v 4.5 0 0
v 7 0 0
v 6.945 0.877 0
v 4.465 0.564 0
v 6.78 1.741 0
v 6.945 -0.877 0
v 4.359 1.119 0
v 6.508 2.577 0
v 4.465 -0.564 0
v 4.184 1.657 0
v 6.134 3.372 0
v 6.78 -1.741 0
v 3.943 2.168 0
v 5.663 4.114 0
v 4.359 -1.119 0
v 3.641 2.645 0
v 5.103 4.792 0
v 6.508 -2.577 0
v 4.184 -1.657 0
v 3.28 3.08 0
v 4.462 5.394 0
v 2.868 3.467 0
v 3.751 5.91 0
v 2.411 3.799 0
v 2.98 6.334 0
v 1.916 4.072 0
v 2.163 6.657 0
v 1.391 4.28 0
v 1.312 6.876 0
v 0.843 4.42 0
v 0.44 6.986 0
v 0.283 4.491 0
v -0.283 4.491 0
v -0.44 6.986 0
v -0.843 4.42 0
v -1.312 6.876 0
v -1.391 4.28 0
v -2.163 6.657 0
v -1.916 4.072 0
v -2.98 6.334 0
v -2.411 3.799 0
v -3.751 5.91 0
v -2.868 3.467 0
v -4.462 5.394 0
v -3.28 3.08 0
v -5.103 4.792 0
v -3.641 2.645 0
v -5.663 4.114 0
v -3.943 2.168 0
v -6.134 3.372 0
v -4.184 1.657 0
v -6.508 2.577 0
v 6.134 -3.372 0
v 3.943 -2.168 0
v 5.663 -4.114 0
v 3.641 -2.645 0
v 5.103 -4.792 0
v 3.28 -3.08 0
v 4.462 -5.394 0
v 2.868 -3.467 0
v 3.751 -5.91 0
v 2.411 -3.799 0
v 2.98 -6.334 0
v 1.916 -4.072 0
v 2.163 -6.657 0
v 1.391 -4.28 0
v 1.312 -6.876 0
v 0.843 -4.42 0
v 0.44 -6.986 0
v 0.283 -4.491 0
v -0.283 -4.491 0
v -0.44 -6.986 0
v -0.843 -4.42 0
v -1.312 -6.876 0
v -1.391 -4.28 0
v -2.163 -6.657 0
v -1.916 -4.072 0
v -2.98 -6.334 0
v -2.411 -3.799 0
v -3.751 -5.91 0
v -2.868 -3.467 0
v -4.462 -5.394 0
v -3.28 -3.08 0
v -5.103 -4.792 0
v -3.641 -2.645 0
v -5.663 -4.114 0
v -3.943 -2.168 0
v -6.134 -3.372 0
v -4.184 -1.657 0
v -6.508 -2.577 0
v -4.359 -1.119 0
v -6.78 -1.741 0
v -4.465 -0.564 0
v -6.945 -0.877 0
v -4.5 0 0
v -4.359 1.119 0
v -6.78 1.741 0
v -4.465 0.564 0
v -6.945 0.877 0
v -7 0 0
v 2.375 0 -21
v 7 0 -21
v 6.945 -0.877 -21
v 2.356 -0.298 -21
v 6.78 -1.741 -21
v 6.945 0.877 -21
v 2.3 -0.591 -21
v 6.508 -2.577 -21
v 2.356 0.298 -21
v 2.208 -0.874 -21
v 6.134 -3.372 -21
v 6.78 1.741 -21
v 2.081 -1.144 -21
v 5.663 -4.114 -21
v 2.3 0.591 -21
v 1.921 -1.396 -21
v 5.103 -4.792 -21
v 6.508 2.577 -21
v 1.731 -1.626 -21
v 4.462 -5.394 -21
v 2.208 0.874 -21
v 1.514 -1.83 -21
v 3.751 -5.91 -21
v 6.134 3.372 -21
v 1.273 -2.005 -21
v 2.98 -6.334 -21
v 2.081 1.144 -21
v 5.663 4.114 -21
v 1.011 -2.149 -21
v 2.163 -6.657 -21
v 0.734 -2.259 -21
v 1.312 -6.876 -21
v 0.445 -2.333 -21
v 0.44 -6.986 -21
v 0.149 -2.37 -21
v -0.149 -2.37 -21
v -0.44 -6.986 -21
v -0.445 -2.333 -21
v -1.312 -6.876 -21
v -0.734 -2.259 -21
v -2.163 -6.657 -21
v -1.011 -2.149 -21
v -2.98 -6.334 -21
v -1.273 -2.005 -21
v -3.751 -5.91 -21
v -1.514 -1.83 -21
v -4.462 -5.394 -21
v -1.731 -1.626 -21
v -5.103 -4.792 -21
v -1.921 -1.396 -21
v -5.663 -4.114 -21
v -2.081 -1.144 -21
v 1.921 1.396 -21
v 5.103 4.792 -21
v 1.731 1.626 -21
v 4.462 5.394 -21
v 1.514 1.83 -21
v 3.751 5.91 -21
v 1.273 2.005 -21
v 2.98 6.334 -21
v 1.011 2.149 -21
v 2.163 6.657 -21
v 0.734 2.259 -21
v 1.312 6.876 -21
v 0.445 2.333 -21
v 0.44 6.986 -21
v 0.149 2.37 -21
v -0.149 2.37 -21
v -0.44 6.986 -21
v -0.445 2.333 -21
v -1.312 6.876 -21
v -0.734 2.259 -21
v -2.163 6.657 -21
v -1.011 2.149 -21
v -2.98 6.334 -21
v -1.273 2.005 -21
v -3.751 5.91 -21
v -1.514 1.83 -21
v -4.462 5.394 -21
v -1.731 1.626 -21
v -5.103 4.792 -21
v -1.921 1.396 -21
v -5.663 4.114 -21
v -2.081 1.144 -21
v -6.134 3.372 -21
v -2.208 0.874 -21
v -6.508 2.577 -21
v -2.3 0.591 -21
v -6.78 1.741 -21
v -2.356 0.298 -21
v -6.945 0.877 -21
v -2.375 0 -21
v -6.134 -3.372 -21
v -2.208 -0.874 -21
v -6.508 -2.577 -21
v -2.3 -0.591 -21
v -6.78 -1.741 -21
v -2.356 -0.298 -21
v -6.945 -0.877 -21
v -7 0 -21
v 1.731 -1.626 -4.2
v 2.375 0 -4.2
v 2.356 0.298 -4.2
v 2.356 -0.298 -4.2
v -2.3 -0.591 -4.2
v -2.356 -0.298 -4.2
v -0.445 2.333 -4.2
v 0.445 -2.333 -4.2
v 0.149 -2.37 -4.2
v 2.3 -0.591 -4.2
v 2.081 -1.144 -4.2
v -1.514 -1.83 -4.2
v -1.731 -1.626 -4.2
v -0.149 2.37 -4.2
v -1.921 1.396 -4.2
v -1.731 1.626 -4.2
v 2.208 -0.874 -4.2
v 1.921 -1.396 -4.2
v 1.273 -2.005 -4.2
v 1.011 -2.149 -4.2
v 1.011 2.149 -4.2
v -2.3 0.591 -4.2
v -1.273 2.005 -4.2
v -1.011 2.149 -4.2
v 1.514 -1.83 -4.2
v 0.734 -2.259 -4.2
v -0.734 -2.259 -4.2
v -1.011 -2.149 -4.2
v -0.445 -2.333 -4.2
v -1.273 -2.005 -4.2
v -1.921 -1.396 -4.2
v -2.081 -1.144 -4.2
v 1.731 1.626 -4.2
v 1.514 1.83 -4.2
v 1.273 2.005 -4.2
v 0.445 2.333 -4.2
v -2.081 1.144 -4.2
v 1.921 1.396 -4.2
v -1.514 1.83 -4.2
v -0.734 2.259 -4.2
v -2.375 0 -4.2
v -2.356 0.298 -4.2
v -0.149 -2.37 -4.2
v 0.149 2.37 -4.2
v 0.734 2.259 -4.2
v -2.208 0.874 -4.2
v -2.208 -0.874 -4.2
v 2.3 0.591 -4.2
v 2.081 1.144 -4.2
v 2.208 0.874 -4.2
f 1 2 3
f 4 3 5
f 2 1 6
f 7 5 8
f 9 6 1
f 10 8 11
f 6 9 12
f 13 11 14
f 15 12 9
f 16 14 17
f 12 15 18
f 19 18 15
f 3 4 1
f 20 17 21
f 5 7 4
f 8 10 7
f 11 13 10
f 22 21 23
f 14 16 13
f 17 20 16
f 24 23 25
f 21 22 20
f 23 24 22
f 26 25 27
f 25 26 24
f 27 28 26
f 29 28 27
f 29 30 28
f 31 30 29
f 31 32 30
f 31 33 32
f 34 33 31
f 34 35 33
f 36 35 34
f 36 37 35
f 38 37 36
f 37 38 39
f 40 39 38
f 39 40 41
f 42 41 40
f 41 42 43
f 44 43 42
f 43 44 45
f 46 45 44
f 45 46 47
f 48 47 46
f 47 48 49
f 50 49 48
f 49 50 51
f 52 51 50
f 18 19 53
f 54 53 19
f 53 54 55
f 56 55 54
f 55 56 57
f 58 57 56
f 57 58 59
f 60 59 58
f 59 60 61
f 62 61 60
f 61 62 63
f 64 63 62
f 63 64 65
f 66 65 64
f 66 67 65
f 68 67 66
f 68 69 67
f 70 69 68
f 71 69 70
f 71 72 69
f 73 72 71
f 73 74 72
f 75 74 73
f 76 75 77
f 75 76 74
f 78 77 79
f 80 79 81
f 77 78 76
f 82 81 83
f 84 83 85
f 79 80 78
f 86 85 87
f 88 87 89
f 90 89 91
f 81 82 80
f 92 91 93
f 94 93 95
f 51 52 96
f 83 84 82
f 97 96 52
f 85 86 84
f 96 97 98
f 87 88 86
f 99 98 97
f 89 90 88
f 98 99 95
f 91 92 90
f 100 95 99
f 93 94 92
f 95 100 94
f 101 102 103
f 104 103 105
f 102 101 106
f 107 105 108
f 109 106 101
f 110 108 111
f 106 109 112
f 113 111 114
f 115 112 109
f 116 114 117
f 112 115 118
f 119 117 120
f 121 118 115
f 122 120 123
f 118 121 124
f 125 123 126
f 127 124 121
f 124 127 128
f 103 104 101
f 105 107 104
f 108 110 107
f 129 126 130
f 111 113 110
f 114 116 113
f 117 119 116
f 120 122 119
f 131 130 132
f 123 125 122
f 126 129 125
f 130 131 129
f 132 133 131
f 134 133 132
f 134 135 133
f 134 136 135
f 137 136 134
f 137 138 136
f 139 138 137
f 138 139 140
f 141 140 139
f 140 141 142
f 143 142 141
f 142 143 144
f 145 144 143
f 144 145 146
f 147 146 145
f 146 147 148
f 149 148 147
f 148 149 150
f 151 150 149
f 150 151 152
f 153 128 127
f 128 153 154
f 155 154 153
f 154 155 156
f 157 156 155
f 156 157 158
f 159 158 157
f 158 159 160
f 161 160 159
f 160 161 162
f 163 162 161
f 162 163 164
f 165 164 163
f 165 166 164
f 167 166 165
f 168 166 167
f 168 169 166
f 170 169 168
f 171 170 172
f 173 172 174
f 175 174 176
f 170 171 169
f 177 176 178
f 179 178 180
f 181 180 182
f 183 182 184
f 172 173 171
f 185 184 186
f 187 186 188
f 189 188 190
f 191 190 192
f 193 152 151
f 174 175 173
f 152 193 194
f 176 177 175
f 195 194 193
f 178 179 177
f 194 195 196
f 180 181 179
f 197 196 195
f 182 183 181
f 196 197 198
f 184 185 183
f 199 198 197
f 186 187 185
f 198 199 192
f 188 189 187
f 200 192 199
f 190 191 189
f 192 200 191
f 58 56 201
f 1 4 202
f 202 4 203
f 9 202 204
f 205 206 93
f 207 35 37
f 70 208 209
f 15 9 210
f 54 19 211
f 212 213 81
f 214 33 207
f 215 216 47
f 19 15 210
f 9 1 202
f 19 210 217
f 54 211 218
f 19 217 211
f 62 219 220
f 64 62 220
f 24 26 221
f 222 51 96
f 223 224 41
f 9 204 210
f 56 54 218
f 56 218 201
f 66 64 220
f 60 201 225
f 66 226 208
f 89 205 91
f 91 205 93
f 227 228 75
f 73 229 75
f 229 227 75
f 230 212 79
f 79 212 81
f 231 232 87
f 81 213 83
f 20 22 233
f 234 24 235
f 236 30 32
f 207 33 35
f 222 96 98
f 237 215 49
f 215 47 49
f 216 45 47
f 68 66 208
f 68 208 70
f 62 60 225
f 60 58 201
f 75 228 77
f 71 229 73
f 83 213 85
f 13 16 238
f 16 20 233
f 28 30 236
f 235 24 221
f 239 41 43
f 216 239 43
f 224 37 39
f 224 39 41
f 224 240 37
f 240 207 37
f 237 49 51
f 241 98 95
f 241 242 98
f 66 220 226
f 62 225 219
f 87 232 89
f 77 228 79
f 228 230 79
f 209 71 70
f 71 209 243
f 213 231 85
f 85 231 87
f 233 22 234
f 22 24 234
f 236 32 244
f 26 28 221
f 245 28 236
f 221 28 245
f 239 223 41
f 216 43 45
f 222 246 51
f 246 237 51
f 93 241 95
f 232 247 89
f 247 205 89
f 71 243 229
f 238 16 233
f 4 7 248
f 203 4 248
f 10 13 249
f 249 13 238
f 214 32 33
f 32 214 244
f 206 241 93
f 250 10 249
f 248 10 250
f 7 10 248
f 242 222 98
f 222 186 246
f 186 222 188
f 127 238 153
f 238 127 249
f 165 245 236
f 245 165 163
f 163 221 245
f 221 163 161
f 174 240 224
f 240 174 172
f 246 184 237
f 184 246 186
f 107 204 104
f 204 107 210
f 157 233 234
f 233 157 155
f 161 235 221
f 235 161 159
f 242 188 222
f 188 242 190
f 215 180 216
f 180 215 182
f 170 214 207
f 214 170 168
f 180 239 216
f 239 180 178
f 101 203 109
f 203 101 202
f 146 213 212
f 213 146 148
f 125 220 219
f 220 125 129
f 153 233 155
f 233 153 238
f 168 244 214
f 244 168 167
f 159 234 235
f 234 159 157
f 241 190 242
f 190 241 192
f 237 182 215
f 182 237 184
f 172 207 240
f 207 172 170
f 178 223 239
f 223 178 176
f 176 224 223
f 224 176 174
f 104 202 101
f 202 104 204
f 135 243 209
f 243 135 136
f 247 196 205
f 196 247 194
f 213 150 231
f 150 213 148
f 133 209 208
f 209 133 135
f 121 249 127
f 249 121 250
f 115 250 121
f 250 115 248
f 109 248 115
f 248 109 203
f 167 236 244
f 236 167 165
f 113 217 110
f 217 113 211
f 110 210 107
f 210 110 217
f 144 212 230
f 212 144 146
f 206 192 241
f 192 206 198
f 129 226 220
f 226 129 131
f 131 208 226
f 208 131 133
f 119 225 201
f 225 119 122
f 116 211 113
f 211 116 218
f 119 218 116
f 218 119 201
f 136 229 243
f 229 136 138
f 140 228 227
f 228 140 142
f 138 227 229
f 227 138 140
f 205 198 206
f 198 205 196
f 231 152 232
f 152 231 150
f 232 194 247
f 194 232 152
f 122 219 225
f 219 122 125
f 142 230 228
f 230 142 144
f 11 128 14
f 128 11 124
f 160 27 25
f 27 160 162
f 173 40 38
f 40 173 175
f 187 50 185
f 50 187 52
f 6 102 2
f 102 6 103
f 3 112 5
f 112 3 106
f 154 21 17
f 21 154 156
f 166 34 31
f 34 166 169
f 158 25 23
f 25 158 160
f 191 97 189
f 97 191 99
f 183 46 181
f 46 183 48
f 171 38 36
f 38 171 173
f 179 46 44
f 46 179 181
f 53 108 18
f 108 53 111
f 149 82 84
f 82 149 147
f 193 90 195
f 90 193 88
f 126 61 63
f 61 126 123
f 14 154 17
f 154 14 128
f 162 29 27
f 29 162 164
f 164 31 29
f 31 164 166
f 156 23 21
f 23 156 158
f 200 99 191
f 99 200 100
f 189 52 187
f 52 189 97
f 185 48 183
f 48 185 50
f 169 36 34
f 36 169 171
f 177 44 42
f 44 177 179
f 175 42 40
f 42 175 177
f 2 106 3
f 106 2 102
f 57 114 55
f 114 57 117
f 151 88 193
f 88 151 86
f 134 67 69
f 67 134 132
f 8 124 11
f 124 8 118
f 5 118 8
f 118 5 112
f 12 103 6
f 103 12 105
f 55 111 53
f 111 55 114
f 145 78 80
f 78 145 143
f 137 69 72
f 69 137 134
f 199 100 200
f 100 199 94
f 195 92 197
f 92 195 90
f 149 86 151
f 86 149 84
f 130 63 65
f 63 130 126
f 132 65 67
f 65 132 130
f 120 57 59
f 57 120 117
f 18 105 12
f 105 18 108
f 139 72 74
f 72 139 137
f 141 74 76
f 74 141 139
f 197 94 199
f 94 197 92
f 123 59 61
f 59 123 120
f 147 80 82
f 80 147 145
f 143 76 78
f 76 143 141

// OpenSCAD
$fn = 50;


difference() {
	union() {
		translate(v = [0, 0, -21.0000000000]) {
			cylinder(h = 21, r = 7.0000000000);
		}
		cylinder(h = 0, r = 16.0000000000);
	}
	union() {
		translate(v = [0, 0, 0]) {
			rotate(a = [0, 0, 0]) {
				difference() {
					union() {
						#translate(v = [0, 0, -21.0000000000]) {
							cylinder(h = 21, r = 2.2500000000);
						}
						#translate(v = [0, 0, -4.2000000000]) {
							cylinder(h = 4.2000000000, r = 7.0000000000, r1 = 2.3750000000, r2 = 4.5000000000);
						}
						#translate(v = [0, 0, -21.0000000000]) {
							cylinder(h = 21, r = 2.3750000000);
						}
						#translate(v = [0, 0, -21.0000000000]) {
							cylinder(h = 21, r = 2.2500000000);
						}
					}
					union();
				}
			}
		}
	}
}
